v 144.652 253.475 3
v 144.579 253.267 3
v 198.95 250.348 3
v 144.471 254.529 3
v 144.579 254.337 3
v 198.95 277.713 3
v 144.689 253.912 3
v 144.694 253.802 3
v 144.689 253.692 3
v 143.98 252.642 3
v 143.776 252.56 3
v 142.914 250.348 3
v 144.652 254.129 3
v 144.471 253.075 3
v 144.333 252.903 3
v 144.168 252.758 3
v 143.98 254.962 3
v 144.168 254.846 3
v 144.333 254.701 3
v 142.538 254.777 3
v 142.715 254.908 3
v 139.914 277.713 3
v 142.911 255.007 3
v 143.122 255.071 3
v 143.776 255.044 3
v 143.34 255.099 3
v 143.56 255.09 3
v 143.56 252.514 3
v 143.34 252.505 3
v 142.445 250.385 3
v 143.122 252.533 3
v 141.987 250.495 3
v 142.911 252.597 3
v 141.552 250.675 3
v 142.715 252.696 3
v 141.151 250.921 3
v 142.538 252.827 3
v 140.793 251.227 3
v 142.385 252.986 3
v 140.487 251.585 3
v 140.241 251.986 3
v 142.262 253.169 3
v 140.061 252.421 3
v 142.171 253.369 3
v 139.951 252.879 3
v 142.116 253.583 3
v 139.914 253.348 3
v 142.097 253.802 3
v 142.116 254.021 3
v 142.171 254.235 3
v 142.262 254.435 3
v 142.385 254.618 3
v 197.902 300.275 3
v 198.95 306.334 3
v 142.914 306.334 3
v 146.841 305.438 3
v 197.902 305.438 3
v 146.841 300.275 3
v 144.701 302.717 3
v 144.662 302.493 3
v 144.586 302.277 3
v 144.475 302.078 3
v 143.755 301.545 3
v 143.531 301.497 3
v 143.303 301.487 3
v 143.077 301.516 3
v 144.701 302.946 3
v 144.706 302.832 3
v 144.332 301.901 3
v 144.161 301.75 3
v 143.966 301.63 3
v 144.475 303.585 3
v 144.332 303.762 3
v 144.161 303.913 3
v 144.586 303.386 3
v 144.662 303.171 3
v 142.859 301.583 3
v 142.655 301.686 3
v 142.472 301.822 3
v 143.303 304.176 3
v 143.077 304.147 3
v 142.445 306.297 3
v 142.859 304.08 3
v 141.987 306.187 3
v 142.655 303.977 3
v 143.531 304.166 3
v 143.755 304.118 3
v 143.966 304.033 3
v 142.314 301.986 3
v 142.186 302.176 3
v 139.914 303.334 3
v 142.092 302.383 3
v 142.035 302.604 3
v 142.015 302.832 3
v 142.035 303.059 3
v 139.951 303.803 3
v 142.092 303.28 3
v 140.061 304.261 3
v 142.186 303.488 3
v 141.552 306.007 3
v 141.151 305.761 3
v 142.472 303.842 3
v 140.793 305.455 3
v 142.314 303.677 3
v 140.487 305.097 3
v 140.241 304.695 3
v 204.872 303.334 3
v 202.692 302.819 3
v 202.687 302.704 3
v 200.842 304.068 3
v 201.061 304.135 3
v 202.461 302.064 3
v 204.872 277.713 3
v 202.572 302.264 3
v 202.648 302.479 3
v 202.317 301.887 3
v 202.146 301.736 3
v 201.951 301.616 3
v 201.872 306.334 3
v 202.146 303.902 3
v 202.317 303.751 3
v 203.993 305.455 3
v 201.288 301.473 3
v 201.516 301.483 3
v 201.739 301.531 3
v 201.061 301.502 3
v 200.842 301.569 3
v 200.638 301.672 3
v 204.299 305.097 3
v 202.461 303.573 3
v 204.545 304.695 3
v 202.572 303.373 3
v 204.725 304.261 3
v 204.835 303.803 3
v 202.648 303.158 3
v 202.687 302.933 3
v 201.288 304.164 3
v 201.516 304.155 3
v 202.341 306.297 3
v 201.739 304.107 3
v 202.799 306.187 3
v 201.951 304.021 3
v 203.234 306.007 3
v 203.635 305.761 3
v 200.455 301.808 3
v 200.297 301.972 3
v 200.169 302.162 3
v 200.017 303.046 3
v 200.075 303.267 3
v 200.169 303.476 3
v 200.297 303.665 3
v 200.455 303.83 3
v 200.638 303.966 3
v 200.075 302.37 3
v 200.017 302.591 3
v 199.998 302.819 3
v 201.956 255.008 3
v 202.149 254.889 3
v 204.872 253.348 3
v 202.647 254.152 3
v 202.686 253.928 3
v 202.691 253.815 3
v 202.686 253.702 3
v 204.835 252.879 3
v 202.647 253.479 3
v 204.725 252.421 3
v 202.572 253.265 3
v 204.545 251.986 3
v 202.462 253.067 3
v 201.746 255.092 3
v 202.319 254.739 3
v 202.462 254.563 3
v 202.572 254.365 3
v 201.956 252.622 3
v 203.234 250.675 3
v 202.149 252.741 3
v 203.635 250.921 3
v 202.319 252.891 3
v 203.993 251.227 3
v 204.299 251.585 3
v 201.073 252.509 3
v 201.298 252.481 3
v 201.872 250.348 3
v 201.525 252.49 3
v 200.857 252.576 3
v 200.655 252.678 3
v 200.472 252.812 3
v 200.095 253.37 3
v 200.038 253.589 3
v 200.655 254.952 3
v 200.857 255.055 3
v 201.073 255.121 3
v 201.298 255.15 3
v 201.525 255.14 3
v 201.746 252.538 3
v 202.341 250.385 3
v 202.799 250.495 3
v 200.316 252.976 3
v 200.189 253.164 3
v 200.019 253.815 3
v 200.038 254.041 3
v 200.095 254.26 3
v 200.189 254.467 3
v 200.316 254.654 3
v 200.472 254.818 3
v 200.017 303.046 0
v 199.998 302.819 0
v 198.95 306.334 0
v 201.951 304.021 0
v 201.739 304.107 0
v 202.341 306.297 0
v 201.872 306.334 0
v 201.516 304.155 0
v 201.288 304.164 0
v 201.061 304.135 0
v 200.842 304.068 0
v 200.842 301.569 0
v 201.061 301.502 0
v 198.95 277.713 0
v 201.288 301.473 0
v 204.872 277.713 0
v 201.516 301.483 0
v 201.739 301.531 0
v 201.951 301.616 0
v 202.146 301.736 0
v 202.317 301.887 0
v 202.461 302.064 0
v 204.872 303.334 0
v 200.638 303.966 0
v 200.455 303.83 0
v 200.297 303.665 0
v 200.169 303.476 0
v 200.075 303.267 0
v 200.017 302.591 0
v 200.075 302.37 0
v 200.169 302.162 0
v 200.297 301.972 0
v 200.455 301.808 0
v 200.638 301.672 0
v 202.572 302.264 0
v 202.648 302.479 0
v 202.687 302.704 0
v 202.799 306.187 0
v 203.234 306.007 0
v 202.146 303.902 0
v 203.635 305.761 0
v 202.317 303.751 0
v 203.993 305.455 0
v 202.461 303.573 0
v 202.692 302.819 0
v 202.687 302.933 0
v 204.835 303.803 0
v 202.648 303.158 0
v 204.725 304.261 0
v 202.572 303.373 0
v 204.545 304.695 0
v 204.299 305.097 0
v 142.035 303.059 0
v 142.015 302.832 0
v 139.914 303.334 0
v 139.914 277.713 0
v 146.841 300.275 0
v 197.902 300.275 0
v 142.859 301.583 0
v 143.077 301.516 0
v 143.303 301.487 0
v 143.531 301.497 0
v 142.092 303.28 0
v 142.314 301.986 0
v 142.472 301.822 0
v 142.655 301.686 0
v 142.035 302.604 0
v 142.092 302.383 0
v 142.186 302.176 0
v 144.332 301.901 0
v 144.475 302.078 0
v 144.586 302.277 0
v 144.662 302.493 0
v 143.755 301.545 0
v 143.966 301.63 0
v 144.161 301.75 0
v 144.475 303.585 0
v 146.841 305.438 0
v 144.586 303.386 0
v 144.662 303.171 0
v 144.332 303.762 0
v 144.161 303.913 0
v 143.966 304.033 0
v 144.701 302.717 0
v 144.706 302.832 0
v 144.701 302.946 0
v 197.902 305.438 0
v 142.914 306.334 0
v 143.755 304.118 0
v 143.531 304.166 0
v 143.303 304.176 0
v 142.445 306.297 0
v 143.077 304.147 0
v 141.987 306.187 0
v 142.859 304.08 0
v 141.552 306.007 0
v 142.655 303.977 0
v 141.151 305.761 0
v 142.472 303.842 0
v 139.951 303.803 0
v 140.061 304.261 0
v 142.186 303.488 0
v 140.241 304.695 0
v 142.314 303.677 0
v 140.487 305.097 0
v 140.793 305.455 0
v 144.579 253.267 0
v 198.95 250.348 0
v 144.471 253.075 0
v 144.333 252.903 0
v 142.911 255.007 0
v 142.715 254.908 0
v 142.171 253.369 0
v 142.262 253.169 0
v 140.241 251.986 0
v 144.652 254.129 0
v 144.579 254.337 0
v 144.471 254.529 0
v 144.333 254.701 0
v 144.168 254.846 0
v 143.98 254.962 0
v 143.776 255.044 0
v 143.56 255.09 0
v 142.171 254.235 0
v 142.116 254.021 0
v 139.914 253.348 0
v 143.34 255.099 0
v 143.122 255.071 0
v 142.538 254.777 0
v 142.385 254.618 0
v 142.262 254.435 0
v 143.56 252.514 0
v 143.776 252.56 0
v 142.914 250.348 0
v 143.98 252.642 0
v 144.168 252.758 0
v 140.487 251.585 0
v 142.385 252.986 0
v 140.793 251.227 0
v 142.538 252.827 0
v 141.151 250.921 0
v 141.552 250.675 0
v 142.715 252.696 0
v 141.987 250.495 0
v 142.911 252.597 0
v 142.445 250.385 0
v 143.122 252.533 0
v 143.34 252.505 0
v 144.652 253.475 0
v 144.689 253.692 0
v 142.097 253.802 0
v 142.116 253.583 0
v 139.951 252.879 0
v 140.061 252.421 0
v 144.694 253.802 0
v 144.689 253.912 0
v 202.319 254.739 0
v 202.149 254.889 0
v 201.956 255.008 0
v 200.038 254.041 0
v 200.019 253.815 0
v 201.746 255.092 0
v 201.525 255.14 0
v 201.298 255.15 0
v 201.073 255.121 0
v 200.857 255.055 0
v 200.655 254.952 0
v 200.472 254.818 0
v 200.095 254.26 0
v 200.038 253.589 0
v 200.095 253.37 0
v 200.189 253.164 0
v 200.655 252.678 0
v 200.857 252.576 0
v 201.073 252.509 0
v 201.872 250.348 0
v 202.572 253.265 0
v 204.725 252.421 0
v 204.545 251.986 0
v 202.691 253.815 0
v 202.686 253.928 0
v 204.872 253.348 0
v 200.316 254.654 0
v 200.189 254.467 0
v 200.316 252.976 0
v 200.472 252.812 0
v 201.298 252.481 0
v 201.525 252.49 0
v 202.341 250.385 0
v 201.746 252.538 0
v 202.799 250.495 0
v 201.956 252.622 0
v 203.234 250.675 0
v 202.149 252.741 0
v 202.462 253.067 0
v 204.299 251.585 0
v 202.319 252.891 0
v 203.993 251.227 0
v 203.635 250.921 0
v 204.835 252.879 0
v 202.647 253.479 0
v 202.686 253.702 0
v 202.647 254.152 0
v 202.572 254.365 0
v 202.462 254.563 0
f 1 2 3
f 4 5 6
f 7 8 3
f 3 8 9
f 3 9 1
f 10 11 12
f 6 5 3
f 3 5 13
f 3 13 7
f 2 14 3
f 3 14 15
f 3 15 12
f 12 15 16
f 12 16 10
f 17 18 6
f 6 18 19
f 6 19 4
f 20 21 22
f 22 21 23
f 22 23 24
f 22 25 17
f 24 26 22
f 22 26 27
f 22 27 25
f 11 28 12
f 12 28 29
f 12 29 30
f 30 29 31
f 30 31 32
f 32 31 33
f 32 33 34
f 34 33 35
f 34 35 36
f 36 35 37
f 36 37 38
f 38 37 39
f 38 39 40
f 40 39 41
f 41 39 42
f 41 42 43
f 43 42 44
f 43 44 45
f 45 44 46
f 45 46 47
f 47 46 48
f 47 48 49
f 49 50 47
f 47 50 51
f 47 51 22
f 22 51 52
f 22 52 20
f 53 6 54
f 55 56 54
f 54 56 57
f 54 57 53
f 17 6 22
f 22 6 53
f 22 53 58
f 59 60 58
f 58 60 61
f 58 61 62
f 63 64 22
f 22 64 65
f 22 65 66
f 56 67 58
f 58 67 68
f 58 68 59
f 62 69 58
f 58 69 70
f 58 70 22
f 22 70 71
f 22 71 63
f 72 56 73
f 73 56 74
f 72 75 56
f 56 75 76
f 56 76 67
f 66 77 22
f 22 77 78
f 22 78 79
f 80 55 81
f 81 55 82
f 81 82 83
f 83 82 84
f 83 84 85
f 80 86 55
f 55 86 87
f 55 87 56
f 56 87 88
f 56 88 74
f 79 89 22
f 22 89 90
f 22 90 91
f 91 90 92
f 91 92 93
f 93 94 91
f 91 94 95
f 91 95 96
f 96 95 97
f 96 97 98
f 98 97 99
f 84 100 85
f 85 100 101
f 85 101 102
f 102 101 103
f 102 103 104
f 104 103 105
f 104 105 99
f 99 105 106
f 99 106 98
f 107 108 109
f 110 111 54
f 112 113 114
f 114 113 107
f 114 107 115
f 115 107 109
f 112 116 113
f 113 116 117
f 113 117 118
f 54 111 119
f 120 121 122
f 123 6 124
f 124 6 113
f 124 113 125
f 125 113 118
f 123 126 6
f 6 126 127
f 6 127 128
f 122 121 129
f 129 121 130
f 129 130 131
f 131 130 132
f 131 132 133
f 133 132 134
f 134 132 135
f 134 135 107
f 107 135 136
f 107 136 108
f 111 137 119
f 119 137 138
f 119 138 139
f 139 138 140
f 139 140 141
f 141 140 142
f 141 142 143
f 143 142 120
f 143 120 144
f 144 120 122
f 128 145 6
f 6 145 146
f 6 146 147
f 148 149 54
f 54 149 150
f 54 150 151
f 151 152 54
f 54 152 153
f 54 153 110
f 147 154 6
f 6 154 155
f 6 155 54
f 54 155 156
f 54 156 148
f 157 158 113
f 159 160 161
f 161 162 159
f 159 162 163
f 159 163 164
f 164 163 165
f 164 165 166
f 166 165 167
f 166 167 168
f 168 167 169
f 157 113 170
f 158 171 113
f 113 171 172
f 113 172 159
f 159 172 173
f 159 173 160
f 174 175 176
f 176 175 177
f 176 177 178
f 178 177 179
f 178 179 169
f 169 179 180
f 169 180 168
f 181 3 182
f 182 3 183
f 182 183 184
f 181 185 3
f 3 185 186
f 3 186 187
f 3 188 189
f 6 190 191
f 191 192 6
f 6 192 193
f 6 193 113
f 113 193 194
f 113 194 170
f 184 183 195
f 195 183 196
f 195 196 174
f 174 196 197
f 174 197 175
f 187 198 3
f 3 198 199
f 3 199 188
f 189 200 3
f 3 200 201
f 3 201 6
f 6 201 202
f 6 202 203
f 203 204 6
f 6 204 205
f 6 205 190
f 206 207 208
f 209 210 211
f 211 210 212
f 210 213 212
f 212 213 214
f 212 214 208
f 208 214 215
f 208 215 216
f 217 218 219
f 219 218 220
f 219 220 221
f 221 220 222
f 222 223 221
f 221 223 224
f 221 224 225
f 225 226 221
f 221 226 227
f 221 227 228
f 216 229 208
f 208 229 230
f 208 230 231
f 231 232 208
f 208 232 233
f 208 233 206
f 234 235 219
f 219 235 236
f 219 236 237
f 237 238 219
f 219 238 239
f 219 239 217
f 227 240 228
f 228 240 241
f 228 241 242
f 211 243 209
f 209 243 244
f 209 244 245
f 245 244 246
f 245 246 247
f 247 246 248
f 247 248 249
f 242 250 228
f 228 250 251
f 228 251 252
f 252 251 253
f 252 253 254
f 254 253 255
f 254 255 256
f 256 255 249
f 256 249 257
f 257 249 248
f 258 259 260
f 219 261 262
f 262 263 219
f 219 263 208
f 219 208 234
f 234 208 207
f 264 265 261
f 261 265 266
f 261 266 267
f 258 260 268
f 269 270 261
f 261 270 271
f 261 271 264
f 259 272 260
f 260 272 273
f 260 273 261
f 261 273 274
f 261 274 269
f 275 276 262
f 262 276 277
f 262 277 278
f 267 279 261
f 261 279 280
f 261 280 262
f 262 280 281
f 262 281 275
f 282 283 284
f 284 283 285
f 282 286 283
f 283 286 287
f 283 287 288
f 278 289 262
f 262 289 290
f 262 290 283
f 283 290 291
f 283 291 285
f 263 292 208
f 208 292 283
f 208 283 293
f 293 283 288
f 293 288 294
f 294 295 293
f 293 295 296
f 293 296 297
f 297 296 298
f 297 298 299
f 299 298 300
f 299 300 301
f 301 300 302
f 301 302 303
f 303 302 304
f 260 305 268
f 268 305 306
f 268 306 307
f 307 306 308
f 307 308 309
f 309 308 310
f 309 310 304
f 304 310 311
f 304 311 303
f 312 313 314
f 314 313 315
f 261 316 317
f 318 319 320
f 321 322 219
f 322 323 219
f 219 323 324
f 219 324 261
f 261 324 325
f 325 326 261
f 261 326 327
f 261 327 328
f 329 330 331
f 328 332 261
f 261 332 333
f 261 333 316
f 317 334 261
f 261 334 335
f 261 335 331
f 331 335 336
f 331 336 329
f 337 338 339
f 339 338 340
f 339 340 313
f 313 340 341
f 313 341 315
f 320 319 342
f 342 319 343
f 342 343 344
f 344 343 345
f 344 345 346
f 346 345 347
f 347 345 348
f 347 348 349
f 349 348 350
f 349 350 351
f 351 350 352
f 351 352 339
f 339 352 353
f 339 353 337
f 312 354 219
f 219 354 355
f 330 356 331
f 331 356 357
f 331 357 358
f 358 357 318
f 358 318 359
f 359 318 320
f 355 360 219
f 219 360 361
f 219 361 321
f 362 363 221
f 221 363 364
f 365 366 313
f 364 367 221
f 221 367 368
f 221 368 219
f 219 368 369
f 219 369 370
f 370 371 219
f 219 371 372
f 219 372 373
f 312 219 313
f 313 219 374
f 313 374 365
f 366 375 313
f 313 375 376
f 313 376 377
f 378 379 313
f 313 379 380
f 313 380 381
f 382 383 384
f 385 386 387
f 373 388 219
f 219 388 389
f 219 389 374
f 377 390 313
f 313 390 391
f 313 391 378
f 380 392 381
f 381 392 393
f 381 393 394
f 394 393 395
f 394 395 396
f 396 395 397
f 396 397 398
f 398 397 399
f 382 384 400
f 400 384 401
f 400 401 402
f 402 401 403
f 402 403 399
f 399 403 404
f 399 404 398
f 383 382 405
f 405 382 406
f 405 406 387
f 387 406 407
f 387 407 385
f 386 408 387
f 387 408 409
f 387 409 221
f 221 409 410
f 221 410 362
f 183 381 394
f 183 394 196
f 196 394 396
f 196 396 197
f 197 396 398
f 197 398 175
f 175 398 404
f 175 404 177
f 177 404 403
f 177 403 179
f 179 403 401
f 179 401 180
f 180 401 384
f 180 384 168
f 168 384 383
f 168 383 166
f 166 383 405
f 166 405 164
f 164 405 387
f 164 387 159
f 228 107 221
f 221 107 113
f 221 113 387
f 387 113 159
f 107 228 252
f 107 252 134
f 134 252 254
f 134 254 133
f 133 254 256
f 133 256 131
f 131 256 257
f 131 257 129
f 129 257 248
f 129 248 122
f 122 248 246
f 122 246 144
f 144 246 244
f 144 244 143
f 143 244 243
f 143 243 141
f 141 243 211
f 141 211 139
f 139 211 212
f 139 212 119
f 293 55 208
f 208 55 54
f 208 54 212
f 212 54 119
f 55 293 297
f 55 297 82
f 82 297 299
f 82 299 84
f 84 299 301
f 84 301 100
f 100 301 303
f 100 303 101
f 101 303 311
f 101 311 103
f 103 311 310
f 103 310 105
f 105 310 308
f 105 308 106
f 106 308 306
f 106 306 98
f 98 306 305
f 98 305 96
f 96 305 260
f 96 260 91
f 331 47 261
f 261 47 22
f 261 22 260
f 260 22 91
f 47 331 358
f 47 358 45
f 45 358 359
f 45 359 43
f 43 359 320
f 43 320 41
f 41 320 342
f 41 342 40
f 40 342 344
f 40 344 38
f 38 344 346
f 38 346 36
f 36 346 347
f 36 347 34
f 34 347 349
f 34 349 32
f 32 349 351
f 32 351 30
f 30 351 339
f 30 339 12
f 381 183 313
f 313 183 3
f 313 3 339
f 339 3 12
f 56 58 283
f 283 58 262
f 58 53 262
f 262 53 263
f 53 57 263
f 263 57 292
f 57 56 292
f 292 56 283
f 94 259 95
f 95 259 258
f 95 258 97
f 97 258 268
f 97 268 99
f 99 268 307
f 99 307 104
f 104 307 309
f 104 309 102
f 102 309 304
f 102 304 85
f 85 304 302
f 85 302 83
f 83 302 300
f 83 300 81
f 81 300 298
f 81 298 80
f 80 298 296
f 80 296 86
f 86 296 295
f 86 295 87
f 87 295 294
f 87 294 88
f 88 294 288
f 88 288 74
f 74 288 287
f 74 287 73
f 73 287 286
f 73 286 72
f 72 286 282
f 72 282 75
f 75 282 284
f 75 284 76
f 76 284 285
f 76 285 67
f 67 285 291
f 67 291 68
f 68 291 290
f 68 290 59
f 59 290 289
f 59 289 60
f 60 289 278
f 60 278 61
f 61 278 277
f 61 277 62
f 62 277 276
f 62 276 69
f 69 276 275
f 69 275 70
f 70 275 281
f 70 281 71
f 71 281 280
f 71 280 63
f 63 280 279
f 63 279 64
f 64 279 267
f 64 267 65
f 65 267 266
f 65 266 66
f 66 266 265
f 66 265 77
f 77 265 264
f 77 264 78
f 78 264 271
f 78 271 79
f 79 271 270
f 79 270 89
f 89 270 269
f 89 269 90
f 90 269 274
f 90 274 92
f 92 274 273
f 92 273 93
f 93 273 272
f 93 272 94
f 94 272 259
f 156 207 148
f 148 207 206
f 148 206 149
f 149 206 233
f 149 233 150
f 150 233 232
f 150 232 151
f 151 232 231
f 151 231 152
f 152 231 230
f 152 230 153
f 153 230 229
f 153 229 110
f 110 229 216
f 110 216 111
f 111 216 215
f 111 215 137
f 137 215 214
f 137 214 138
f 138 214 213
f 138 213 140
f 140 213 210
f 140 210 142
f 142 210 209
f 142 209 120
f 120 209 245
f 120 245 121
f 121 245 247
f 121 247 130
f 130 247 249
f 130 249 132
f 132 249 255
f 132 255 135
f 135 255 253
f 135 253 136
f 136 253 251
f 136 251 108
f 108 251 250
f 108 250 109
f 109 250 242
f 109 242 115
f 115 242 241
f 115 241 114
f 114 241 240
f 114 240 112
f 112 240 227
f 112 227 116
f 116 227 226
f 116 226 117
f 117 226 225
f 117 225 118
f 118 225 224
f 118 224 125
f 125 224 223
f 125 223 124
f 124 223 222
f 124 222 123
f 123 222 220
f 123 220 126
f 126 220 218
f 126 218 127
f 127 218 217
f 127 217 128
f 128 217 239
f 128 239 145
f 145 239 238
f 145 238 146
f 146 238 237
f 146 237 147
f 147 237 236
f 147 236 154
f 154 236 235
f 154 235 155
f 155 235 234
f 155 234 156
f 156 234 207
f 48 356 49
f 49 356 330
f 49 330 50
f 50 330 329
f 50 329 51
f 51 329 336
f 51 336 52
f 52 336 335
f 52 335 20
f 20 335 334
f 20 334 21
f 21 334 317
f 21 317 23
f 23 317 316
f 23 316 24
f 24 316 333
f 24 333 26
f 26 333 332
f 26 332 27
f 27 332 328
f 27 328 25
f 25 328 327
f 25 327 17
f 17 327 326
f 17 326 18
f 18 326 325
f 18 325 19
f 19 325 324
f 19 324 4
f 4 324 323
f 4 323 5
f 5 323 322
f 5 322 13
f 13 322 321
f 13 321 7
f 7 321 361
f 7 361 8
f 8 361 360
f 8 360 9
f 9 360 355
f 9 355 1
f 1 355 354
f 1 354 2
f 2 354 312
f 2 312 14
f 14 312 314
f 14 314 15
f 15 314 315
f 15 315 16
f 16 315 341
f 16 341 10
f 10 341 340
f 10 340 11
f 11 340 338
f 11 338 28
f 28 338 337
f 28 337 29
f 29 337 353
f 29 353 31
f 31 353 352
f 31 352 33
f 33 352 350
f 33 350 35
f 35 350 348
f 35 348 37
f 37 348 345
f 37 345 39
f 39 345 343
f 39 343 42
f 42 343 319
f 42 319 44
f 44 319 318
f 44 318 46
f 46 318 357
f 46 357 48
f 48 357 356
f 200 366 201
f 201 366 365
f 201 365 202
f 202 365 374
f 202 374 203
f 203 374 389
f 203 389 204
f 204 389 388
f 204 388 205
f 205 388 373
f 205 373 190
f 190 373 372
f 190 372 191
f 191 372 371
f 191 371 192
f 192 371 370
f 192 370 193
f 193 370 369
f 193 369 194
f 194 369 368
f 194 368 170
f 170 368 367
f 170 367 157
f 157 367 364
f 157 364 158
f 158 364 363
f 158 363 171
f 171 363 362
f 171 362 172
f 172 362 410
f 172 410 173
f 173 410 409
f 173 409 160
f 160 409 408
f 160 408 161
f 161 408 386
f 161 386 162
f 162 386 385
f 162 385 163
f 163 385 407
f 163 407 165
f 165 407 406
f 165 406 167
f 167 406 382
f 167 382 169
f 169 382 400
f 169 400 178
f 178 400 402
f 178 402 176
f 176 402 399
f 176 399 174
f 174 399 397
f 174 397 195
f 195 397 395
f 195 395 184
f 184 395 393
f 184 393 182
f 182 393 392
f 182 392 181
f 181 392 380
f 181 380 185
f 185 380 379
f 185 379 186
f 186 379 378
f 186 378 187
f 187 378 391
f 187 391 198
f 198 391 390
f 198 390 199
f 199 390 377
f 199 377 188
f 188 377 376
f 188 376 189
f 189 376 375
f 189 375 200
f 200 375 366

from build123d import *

# Parameters (mm, degrees)
ESQUISSE1_R        = 1.345345221
ESQUISSE1_R_2      = 1.346909221
ESQUISSE1_R_3      = 1.298611316
ESQUISSE1_R_4      = 1.335683761
ESQUISSE1_W        = 51.06055426
ESQUISSE1_H        = 5.162843369
BOSS_EXTRU_1_DEPTH = 3


with BuildPart() as part:
    # Esquisse1 → Boss.-Extru.1 (new body)
    with BuildSketch(Plane.XY):
        with BuildLine():
            Line((142.914343154, 306.333520822), (201.871913252, 306.333520822))
            ThreePointArc((201.871913252, 306.333520822), (203.993233595, 305.454841166), (204.871913252, 303.333520822))
            Line((204.871913252, 303.333520822), (204.871913252, 253.348131253))
            ThreePointArc((204.871913252, 253.348131253), (203.993233595, 251.22681091), (201.871913252, 250.348131253))
            Line((201.871913252, 250.348131253), (142.914343154, 250.348131253))
            ThreePointArc((142.914343154, 250.348131253), (140.793022811, 251.22681091), (139.914343154, 253.348131253))
            Line((139.914343154, 253.348131253), (139.914343154, 303.333520822))
            ThreePointArc((139.914343154, 303.333520822), (140.793022811, 305.454841166), (142.914343154, 306.333520822))
        make_face()
        with Locations((143.360544481, 302.831604494)):
            Circle(ESQUISSE1_R, mode=Mode.SUBTRACT)
        with Locations((201.344684378, 302.818633302)):
            Circle(ESQUISSE1_R_2, mode=Mode.SUBTRACT)
        with Locations((143.395469299, 253.802031827)):
            Circle(ESQUISSE1_R_3, mode=Mode.SUBTRACT)
        with Locations((201.354862046, 253.815125268)):
            Circle(ESQUISSE1_R_4, mode=Mode.SUBTRACT)
        with Locations((172.371550879, 302.856687584)):
            Rectangle(ESQUISSE1_W, ESQUISSE1_H, mode=Mode.SUBTRACT)
    extrude(amount=BOSS_EXTRU_1_DEPTH)


solid = part.part
